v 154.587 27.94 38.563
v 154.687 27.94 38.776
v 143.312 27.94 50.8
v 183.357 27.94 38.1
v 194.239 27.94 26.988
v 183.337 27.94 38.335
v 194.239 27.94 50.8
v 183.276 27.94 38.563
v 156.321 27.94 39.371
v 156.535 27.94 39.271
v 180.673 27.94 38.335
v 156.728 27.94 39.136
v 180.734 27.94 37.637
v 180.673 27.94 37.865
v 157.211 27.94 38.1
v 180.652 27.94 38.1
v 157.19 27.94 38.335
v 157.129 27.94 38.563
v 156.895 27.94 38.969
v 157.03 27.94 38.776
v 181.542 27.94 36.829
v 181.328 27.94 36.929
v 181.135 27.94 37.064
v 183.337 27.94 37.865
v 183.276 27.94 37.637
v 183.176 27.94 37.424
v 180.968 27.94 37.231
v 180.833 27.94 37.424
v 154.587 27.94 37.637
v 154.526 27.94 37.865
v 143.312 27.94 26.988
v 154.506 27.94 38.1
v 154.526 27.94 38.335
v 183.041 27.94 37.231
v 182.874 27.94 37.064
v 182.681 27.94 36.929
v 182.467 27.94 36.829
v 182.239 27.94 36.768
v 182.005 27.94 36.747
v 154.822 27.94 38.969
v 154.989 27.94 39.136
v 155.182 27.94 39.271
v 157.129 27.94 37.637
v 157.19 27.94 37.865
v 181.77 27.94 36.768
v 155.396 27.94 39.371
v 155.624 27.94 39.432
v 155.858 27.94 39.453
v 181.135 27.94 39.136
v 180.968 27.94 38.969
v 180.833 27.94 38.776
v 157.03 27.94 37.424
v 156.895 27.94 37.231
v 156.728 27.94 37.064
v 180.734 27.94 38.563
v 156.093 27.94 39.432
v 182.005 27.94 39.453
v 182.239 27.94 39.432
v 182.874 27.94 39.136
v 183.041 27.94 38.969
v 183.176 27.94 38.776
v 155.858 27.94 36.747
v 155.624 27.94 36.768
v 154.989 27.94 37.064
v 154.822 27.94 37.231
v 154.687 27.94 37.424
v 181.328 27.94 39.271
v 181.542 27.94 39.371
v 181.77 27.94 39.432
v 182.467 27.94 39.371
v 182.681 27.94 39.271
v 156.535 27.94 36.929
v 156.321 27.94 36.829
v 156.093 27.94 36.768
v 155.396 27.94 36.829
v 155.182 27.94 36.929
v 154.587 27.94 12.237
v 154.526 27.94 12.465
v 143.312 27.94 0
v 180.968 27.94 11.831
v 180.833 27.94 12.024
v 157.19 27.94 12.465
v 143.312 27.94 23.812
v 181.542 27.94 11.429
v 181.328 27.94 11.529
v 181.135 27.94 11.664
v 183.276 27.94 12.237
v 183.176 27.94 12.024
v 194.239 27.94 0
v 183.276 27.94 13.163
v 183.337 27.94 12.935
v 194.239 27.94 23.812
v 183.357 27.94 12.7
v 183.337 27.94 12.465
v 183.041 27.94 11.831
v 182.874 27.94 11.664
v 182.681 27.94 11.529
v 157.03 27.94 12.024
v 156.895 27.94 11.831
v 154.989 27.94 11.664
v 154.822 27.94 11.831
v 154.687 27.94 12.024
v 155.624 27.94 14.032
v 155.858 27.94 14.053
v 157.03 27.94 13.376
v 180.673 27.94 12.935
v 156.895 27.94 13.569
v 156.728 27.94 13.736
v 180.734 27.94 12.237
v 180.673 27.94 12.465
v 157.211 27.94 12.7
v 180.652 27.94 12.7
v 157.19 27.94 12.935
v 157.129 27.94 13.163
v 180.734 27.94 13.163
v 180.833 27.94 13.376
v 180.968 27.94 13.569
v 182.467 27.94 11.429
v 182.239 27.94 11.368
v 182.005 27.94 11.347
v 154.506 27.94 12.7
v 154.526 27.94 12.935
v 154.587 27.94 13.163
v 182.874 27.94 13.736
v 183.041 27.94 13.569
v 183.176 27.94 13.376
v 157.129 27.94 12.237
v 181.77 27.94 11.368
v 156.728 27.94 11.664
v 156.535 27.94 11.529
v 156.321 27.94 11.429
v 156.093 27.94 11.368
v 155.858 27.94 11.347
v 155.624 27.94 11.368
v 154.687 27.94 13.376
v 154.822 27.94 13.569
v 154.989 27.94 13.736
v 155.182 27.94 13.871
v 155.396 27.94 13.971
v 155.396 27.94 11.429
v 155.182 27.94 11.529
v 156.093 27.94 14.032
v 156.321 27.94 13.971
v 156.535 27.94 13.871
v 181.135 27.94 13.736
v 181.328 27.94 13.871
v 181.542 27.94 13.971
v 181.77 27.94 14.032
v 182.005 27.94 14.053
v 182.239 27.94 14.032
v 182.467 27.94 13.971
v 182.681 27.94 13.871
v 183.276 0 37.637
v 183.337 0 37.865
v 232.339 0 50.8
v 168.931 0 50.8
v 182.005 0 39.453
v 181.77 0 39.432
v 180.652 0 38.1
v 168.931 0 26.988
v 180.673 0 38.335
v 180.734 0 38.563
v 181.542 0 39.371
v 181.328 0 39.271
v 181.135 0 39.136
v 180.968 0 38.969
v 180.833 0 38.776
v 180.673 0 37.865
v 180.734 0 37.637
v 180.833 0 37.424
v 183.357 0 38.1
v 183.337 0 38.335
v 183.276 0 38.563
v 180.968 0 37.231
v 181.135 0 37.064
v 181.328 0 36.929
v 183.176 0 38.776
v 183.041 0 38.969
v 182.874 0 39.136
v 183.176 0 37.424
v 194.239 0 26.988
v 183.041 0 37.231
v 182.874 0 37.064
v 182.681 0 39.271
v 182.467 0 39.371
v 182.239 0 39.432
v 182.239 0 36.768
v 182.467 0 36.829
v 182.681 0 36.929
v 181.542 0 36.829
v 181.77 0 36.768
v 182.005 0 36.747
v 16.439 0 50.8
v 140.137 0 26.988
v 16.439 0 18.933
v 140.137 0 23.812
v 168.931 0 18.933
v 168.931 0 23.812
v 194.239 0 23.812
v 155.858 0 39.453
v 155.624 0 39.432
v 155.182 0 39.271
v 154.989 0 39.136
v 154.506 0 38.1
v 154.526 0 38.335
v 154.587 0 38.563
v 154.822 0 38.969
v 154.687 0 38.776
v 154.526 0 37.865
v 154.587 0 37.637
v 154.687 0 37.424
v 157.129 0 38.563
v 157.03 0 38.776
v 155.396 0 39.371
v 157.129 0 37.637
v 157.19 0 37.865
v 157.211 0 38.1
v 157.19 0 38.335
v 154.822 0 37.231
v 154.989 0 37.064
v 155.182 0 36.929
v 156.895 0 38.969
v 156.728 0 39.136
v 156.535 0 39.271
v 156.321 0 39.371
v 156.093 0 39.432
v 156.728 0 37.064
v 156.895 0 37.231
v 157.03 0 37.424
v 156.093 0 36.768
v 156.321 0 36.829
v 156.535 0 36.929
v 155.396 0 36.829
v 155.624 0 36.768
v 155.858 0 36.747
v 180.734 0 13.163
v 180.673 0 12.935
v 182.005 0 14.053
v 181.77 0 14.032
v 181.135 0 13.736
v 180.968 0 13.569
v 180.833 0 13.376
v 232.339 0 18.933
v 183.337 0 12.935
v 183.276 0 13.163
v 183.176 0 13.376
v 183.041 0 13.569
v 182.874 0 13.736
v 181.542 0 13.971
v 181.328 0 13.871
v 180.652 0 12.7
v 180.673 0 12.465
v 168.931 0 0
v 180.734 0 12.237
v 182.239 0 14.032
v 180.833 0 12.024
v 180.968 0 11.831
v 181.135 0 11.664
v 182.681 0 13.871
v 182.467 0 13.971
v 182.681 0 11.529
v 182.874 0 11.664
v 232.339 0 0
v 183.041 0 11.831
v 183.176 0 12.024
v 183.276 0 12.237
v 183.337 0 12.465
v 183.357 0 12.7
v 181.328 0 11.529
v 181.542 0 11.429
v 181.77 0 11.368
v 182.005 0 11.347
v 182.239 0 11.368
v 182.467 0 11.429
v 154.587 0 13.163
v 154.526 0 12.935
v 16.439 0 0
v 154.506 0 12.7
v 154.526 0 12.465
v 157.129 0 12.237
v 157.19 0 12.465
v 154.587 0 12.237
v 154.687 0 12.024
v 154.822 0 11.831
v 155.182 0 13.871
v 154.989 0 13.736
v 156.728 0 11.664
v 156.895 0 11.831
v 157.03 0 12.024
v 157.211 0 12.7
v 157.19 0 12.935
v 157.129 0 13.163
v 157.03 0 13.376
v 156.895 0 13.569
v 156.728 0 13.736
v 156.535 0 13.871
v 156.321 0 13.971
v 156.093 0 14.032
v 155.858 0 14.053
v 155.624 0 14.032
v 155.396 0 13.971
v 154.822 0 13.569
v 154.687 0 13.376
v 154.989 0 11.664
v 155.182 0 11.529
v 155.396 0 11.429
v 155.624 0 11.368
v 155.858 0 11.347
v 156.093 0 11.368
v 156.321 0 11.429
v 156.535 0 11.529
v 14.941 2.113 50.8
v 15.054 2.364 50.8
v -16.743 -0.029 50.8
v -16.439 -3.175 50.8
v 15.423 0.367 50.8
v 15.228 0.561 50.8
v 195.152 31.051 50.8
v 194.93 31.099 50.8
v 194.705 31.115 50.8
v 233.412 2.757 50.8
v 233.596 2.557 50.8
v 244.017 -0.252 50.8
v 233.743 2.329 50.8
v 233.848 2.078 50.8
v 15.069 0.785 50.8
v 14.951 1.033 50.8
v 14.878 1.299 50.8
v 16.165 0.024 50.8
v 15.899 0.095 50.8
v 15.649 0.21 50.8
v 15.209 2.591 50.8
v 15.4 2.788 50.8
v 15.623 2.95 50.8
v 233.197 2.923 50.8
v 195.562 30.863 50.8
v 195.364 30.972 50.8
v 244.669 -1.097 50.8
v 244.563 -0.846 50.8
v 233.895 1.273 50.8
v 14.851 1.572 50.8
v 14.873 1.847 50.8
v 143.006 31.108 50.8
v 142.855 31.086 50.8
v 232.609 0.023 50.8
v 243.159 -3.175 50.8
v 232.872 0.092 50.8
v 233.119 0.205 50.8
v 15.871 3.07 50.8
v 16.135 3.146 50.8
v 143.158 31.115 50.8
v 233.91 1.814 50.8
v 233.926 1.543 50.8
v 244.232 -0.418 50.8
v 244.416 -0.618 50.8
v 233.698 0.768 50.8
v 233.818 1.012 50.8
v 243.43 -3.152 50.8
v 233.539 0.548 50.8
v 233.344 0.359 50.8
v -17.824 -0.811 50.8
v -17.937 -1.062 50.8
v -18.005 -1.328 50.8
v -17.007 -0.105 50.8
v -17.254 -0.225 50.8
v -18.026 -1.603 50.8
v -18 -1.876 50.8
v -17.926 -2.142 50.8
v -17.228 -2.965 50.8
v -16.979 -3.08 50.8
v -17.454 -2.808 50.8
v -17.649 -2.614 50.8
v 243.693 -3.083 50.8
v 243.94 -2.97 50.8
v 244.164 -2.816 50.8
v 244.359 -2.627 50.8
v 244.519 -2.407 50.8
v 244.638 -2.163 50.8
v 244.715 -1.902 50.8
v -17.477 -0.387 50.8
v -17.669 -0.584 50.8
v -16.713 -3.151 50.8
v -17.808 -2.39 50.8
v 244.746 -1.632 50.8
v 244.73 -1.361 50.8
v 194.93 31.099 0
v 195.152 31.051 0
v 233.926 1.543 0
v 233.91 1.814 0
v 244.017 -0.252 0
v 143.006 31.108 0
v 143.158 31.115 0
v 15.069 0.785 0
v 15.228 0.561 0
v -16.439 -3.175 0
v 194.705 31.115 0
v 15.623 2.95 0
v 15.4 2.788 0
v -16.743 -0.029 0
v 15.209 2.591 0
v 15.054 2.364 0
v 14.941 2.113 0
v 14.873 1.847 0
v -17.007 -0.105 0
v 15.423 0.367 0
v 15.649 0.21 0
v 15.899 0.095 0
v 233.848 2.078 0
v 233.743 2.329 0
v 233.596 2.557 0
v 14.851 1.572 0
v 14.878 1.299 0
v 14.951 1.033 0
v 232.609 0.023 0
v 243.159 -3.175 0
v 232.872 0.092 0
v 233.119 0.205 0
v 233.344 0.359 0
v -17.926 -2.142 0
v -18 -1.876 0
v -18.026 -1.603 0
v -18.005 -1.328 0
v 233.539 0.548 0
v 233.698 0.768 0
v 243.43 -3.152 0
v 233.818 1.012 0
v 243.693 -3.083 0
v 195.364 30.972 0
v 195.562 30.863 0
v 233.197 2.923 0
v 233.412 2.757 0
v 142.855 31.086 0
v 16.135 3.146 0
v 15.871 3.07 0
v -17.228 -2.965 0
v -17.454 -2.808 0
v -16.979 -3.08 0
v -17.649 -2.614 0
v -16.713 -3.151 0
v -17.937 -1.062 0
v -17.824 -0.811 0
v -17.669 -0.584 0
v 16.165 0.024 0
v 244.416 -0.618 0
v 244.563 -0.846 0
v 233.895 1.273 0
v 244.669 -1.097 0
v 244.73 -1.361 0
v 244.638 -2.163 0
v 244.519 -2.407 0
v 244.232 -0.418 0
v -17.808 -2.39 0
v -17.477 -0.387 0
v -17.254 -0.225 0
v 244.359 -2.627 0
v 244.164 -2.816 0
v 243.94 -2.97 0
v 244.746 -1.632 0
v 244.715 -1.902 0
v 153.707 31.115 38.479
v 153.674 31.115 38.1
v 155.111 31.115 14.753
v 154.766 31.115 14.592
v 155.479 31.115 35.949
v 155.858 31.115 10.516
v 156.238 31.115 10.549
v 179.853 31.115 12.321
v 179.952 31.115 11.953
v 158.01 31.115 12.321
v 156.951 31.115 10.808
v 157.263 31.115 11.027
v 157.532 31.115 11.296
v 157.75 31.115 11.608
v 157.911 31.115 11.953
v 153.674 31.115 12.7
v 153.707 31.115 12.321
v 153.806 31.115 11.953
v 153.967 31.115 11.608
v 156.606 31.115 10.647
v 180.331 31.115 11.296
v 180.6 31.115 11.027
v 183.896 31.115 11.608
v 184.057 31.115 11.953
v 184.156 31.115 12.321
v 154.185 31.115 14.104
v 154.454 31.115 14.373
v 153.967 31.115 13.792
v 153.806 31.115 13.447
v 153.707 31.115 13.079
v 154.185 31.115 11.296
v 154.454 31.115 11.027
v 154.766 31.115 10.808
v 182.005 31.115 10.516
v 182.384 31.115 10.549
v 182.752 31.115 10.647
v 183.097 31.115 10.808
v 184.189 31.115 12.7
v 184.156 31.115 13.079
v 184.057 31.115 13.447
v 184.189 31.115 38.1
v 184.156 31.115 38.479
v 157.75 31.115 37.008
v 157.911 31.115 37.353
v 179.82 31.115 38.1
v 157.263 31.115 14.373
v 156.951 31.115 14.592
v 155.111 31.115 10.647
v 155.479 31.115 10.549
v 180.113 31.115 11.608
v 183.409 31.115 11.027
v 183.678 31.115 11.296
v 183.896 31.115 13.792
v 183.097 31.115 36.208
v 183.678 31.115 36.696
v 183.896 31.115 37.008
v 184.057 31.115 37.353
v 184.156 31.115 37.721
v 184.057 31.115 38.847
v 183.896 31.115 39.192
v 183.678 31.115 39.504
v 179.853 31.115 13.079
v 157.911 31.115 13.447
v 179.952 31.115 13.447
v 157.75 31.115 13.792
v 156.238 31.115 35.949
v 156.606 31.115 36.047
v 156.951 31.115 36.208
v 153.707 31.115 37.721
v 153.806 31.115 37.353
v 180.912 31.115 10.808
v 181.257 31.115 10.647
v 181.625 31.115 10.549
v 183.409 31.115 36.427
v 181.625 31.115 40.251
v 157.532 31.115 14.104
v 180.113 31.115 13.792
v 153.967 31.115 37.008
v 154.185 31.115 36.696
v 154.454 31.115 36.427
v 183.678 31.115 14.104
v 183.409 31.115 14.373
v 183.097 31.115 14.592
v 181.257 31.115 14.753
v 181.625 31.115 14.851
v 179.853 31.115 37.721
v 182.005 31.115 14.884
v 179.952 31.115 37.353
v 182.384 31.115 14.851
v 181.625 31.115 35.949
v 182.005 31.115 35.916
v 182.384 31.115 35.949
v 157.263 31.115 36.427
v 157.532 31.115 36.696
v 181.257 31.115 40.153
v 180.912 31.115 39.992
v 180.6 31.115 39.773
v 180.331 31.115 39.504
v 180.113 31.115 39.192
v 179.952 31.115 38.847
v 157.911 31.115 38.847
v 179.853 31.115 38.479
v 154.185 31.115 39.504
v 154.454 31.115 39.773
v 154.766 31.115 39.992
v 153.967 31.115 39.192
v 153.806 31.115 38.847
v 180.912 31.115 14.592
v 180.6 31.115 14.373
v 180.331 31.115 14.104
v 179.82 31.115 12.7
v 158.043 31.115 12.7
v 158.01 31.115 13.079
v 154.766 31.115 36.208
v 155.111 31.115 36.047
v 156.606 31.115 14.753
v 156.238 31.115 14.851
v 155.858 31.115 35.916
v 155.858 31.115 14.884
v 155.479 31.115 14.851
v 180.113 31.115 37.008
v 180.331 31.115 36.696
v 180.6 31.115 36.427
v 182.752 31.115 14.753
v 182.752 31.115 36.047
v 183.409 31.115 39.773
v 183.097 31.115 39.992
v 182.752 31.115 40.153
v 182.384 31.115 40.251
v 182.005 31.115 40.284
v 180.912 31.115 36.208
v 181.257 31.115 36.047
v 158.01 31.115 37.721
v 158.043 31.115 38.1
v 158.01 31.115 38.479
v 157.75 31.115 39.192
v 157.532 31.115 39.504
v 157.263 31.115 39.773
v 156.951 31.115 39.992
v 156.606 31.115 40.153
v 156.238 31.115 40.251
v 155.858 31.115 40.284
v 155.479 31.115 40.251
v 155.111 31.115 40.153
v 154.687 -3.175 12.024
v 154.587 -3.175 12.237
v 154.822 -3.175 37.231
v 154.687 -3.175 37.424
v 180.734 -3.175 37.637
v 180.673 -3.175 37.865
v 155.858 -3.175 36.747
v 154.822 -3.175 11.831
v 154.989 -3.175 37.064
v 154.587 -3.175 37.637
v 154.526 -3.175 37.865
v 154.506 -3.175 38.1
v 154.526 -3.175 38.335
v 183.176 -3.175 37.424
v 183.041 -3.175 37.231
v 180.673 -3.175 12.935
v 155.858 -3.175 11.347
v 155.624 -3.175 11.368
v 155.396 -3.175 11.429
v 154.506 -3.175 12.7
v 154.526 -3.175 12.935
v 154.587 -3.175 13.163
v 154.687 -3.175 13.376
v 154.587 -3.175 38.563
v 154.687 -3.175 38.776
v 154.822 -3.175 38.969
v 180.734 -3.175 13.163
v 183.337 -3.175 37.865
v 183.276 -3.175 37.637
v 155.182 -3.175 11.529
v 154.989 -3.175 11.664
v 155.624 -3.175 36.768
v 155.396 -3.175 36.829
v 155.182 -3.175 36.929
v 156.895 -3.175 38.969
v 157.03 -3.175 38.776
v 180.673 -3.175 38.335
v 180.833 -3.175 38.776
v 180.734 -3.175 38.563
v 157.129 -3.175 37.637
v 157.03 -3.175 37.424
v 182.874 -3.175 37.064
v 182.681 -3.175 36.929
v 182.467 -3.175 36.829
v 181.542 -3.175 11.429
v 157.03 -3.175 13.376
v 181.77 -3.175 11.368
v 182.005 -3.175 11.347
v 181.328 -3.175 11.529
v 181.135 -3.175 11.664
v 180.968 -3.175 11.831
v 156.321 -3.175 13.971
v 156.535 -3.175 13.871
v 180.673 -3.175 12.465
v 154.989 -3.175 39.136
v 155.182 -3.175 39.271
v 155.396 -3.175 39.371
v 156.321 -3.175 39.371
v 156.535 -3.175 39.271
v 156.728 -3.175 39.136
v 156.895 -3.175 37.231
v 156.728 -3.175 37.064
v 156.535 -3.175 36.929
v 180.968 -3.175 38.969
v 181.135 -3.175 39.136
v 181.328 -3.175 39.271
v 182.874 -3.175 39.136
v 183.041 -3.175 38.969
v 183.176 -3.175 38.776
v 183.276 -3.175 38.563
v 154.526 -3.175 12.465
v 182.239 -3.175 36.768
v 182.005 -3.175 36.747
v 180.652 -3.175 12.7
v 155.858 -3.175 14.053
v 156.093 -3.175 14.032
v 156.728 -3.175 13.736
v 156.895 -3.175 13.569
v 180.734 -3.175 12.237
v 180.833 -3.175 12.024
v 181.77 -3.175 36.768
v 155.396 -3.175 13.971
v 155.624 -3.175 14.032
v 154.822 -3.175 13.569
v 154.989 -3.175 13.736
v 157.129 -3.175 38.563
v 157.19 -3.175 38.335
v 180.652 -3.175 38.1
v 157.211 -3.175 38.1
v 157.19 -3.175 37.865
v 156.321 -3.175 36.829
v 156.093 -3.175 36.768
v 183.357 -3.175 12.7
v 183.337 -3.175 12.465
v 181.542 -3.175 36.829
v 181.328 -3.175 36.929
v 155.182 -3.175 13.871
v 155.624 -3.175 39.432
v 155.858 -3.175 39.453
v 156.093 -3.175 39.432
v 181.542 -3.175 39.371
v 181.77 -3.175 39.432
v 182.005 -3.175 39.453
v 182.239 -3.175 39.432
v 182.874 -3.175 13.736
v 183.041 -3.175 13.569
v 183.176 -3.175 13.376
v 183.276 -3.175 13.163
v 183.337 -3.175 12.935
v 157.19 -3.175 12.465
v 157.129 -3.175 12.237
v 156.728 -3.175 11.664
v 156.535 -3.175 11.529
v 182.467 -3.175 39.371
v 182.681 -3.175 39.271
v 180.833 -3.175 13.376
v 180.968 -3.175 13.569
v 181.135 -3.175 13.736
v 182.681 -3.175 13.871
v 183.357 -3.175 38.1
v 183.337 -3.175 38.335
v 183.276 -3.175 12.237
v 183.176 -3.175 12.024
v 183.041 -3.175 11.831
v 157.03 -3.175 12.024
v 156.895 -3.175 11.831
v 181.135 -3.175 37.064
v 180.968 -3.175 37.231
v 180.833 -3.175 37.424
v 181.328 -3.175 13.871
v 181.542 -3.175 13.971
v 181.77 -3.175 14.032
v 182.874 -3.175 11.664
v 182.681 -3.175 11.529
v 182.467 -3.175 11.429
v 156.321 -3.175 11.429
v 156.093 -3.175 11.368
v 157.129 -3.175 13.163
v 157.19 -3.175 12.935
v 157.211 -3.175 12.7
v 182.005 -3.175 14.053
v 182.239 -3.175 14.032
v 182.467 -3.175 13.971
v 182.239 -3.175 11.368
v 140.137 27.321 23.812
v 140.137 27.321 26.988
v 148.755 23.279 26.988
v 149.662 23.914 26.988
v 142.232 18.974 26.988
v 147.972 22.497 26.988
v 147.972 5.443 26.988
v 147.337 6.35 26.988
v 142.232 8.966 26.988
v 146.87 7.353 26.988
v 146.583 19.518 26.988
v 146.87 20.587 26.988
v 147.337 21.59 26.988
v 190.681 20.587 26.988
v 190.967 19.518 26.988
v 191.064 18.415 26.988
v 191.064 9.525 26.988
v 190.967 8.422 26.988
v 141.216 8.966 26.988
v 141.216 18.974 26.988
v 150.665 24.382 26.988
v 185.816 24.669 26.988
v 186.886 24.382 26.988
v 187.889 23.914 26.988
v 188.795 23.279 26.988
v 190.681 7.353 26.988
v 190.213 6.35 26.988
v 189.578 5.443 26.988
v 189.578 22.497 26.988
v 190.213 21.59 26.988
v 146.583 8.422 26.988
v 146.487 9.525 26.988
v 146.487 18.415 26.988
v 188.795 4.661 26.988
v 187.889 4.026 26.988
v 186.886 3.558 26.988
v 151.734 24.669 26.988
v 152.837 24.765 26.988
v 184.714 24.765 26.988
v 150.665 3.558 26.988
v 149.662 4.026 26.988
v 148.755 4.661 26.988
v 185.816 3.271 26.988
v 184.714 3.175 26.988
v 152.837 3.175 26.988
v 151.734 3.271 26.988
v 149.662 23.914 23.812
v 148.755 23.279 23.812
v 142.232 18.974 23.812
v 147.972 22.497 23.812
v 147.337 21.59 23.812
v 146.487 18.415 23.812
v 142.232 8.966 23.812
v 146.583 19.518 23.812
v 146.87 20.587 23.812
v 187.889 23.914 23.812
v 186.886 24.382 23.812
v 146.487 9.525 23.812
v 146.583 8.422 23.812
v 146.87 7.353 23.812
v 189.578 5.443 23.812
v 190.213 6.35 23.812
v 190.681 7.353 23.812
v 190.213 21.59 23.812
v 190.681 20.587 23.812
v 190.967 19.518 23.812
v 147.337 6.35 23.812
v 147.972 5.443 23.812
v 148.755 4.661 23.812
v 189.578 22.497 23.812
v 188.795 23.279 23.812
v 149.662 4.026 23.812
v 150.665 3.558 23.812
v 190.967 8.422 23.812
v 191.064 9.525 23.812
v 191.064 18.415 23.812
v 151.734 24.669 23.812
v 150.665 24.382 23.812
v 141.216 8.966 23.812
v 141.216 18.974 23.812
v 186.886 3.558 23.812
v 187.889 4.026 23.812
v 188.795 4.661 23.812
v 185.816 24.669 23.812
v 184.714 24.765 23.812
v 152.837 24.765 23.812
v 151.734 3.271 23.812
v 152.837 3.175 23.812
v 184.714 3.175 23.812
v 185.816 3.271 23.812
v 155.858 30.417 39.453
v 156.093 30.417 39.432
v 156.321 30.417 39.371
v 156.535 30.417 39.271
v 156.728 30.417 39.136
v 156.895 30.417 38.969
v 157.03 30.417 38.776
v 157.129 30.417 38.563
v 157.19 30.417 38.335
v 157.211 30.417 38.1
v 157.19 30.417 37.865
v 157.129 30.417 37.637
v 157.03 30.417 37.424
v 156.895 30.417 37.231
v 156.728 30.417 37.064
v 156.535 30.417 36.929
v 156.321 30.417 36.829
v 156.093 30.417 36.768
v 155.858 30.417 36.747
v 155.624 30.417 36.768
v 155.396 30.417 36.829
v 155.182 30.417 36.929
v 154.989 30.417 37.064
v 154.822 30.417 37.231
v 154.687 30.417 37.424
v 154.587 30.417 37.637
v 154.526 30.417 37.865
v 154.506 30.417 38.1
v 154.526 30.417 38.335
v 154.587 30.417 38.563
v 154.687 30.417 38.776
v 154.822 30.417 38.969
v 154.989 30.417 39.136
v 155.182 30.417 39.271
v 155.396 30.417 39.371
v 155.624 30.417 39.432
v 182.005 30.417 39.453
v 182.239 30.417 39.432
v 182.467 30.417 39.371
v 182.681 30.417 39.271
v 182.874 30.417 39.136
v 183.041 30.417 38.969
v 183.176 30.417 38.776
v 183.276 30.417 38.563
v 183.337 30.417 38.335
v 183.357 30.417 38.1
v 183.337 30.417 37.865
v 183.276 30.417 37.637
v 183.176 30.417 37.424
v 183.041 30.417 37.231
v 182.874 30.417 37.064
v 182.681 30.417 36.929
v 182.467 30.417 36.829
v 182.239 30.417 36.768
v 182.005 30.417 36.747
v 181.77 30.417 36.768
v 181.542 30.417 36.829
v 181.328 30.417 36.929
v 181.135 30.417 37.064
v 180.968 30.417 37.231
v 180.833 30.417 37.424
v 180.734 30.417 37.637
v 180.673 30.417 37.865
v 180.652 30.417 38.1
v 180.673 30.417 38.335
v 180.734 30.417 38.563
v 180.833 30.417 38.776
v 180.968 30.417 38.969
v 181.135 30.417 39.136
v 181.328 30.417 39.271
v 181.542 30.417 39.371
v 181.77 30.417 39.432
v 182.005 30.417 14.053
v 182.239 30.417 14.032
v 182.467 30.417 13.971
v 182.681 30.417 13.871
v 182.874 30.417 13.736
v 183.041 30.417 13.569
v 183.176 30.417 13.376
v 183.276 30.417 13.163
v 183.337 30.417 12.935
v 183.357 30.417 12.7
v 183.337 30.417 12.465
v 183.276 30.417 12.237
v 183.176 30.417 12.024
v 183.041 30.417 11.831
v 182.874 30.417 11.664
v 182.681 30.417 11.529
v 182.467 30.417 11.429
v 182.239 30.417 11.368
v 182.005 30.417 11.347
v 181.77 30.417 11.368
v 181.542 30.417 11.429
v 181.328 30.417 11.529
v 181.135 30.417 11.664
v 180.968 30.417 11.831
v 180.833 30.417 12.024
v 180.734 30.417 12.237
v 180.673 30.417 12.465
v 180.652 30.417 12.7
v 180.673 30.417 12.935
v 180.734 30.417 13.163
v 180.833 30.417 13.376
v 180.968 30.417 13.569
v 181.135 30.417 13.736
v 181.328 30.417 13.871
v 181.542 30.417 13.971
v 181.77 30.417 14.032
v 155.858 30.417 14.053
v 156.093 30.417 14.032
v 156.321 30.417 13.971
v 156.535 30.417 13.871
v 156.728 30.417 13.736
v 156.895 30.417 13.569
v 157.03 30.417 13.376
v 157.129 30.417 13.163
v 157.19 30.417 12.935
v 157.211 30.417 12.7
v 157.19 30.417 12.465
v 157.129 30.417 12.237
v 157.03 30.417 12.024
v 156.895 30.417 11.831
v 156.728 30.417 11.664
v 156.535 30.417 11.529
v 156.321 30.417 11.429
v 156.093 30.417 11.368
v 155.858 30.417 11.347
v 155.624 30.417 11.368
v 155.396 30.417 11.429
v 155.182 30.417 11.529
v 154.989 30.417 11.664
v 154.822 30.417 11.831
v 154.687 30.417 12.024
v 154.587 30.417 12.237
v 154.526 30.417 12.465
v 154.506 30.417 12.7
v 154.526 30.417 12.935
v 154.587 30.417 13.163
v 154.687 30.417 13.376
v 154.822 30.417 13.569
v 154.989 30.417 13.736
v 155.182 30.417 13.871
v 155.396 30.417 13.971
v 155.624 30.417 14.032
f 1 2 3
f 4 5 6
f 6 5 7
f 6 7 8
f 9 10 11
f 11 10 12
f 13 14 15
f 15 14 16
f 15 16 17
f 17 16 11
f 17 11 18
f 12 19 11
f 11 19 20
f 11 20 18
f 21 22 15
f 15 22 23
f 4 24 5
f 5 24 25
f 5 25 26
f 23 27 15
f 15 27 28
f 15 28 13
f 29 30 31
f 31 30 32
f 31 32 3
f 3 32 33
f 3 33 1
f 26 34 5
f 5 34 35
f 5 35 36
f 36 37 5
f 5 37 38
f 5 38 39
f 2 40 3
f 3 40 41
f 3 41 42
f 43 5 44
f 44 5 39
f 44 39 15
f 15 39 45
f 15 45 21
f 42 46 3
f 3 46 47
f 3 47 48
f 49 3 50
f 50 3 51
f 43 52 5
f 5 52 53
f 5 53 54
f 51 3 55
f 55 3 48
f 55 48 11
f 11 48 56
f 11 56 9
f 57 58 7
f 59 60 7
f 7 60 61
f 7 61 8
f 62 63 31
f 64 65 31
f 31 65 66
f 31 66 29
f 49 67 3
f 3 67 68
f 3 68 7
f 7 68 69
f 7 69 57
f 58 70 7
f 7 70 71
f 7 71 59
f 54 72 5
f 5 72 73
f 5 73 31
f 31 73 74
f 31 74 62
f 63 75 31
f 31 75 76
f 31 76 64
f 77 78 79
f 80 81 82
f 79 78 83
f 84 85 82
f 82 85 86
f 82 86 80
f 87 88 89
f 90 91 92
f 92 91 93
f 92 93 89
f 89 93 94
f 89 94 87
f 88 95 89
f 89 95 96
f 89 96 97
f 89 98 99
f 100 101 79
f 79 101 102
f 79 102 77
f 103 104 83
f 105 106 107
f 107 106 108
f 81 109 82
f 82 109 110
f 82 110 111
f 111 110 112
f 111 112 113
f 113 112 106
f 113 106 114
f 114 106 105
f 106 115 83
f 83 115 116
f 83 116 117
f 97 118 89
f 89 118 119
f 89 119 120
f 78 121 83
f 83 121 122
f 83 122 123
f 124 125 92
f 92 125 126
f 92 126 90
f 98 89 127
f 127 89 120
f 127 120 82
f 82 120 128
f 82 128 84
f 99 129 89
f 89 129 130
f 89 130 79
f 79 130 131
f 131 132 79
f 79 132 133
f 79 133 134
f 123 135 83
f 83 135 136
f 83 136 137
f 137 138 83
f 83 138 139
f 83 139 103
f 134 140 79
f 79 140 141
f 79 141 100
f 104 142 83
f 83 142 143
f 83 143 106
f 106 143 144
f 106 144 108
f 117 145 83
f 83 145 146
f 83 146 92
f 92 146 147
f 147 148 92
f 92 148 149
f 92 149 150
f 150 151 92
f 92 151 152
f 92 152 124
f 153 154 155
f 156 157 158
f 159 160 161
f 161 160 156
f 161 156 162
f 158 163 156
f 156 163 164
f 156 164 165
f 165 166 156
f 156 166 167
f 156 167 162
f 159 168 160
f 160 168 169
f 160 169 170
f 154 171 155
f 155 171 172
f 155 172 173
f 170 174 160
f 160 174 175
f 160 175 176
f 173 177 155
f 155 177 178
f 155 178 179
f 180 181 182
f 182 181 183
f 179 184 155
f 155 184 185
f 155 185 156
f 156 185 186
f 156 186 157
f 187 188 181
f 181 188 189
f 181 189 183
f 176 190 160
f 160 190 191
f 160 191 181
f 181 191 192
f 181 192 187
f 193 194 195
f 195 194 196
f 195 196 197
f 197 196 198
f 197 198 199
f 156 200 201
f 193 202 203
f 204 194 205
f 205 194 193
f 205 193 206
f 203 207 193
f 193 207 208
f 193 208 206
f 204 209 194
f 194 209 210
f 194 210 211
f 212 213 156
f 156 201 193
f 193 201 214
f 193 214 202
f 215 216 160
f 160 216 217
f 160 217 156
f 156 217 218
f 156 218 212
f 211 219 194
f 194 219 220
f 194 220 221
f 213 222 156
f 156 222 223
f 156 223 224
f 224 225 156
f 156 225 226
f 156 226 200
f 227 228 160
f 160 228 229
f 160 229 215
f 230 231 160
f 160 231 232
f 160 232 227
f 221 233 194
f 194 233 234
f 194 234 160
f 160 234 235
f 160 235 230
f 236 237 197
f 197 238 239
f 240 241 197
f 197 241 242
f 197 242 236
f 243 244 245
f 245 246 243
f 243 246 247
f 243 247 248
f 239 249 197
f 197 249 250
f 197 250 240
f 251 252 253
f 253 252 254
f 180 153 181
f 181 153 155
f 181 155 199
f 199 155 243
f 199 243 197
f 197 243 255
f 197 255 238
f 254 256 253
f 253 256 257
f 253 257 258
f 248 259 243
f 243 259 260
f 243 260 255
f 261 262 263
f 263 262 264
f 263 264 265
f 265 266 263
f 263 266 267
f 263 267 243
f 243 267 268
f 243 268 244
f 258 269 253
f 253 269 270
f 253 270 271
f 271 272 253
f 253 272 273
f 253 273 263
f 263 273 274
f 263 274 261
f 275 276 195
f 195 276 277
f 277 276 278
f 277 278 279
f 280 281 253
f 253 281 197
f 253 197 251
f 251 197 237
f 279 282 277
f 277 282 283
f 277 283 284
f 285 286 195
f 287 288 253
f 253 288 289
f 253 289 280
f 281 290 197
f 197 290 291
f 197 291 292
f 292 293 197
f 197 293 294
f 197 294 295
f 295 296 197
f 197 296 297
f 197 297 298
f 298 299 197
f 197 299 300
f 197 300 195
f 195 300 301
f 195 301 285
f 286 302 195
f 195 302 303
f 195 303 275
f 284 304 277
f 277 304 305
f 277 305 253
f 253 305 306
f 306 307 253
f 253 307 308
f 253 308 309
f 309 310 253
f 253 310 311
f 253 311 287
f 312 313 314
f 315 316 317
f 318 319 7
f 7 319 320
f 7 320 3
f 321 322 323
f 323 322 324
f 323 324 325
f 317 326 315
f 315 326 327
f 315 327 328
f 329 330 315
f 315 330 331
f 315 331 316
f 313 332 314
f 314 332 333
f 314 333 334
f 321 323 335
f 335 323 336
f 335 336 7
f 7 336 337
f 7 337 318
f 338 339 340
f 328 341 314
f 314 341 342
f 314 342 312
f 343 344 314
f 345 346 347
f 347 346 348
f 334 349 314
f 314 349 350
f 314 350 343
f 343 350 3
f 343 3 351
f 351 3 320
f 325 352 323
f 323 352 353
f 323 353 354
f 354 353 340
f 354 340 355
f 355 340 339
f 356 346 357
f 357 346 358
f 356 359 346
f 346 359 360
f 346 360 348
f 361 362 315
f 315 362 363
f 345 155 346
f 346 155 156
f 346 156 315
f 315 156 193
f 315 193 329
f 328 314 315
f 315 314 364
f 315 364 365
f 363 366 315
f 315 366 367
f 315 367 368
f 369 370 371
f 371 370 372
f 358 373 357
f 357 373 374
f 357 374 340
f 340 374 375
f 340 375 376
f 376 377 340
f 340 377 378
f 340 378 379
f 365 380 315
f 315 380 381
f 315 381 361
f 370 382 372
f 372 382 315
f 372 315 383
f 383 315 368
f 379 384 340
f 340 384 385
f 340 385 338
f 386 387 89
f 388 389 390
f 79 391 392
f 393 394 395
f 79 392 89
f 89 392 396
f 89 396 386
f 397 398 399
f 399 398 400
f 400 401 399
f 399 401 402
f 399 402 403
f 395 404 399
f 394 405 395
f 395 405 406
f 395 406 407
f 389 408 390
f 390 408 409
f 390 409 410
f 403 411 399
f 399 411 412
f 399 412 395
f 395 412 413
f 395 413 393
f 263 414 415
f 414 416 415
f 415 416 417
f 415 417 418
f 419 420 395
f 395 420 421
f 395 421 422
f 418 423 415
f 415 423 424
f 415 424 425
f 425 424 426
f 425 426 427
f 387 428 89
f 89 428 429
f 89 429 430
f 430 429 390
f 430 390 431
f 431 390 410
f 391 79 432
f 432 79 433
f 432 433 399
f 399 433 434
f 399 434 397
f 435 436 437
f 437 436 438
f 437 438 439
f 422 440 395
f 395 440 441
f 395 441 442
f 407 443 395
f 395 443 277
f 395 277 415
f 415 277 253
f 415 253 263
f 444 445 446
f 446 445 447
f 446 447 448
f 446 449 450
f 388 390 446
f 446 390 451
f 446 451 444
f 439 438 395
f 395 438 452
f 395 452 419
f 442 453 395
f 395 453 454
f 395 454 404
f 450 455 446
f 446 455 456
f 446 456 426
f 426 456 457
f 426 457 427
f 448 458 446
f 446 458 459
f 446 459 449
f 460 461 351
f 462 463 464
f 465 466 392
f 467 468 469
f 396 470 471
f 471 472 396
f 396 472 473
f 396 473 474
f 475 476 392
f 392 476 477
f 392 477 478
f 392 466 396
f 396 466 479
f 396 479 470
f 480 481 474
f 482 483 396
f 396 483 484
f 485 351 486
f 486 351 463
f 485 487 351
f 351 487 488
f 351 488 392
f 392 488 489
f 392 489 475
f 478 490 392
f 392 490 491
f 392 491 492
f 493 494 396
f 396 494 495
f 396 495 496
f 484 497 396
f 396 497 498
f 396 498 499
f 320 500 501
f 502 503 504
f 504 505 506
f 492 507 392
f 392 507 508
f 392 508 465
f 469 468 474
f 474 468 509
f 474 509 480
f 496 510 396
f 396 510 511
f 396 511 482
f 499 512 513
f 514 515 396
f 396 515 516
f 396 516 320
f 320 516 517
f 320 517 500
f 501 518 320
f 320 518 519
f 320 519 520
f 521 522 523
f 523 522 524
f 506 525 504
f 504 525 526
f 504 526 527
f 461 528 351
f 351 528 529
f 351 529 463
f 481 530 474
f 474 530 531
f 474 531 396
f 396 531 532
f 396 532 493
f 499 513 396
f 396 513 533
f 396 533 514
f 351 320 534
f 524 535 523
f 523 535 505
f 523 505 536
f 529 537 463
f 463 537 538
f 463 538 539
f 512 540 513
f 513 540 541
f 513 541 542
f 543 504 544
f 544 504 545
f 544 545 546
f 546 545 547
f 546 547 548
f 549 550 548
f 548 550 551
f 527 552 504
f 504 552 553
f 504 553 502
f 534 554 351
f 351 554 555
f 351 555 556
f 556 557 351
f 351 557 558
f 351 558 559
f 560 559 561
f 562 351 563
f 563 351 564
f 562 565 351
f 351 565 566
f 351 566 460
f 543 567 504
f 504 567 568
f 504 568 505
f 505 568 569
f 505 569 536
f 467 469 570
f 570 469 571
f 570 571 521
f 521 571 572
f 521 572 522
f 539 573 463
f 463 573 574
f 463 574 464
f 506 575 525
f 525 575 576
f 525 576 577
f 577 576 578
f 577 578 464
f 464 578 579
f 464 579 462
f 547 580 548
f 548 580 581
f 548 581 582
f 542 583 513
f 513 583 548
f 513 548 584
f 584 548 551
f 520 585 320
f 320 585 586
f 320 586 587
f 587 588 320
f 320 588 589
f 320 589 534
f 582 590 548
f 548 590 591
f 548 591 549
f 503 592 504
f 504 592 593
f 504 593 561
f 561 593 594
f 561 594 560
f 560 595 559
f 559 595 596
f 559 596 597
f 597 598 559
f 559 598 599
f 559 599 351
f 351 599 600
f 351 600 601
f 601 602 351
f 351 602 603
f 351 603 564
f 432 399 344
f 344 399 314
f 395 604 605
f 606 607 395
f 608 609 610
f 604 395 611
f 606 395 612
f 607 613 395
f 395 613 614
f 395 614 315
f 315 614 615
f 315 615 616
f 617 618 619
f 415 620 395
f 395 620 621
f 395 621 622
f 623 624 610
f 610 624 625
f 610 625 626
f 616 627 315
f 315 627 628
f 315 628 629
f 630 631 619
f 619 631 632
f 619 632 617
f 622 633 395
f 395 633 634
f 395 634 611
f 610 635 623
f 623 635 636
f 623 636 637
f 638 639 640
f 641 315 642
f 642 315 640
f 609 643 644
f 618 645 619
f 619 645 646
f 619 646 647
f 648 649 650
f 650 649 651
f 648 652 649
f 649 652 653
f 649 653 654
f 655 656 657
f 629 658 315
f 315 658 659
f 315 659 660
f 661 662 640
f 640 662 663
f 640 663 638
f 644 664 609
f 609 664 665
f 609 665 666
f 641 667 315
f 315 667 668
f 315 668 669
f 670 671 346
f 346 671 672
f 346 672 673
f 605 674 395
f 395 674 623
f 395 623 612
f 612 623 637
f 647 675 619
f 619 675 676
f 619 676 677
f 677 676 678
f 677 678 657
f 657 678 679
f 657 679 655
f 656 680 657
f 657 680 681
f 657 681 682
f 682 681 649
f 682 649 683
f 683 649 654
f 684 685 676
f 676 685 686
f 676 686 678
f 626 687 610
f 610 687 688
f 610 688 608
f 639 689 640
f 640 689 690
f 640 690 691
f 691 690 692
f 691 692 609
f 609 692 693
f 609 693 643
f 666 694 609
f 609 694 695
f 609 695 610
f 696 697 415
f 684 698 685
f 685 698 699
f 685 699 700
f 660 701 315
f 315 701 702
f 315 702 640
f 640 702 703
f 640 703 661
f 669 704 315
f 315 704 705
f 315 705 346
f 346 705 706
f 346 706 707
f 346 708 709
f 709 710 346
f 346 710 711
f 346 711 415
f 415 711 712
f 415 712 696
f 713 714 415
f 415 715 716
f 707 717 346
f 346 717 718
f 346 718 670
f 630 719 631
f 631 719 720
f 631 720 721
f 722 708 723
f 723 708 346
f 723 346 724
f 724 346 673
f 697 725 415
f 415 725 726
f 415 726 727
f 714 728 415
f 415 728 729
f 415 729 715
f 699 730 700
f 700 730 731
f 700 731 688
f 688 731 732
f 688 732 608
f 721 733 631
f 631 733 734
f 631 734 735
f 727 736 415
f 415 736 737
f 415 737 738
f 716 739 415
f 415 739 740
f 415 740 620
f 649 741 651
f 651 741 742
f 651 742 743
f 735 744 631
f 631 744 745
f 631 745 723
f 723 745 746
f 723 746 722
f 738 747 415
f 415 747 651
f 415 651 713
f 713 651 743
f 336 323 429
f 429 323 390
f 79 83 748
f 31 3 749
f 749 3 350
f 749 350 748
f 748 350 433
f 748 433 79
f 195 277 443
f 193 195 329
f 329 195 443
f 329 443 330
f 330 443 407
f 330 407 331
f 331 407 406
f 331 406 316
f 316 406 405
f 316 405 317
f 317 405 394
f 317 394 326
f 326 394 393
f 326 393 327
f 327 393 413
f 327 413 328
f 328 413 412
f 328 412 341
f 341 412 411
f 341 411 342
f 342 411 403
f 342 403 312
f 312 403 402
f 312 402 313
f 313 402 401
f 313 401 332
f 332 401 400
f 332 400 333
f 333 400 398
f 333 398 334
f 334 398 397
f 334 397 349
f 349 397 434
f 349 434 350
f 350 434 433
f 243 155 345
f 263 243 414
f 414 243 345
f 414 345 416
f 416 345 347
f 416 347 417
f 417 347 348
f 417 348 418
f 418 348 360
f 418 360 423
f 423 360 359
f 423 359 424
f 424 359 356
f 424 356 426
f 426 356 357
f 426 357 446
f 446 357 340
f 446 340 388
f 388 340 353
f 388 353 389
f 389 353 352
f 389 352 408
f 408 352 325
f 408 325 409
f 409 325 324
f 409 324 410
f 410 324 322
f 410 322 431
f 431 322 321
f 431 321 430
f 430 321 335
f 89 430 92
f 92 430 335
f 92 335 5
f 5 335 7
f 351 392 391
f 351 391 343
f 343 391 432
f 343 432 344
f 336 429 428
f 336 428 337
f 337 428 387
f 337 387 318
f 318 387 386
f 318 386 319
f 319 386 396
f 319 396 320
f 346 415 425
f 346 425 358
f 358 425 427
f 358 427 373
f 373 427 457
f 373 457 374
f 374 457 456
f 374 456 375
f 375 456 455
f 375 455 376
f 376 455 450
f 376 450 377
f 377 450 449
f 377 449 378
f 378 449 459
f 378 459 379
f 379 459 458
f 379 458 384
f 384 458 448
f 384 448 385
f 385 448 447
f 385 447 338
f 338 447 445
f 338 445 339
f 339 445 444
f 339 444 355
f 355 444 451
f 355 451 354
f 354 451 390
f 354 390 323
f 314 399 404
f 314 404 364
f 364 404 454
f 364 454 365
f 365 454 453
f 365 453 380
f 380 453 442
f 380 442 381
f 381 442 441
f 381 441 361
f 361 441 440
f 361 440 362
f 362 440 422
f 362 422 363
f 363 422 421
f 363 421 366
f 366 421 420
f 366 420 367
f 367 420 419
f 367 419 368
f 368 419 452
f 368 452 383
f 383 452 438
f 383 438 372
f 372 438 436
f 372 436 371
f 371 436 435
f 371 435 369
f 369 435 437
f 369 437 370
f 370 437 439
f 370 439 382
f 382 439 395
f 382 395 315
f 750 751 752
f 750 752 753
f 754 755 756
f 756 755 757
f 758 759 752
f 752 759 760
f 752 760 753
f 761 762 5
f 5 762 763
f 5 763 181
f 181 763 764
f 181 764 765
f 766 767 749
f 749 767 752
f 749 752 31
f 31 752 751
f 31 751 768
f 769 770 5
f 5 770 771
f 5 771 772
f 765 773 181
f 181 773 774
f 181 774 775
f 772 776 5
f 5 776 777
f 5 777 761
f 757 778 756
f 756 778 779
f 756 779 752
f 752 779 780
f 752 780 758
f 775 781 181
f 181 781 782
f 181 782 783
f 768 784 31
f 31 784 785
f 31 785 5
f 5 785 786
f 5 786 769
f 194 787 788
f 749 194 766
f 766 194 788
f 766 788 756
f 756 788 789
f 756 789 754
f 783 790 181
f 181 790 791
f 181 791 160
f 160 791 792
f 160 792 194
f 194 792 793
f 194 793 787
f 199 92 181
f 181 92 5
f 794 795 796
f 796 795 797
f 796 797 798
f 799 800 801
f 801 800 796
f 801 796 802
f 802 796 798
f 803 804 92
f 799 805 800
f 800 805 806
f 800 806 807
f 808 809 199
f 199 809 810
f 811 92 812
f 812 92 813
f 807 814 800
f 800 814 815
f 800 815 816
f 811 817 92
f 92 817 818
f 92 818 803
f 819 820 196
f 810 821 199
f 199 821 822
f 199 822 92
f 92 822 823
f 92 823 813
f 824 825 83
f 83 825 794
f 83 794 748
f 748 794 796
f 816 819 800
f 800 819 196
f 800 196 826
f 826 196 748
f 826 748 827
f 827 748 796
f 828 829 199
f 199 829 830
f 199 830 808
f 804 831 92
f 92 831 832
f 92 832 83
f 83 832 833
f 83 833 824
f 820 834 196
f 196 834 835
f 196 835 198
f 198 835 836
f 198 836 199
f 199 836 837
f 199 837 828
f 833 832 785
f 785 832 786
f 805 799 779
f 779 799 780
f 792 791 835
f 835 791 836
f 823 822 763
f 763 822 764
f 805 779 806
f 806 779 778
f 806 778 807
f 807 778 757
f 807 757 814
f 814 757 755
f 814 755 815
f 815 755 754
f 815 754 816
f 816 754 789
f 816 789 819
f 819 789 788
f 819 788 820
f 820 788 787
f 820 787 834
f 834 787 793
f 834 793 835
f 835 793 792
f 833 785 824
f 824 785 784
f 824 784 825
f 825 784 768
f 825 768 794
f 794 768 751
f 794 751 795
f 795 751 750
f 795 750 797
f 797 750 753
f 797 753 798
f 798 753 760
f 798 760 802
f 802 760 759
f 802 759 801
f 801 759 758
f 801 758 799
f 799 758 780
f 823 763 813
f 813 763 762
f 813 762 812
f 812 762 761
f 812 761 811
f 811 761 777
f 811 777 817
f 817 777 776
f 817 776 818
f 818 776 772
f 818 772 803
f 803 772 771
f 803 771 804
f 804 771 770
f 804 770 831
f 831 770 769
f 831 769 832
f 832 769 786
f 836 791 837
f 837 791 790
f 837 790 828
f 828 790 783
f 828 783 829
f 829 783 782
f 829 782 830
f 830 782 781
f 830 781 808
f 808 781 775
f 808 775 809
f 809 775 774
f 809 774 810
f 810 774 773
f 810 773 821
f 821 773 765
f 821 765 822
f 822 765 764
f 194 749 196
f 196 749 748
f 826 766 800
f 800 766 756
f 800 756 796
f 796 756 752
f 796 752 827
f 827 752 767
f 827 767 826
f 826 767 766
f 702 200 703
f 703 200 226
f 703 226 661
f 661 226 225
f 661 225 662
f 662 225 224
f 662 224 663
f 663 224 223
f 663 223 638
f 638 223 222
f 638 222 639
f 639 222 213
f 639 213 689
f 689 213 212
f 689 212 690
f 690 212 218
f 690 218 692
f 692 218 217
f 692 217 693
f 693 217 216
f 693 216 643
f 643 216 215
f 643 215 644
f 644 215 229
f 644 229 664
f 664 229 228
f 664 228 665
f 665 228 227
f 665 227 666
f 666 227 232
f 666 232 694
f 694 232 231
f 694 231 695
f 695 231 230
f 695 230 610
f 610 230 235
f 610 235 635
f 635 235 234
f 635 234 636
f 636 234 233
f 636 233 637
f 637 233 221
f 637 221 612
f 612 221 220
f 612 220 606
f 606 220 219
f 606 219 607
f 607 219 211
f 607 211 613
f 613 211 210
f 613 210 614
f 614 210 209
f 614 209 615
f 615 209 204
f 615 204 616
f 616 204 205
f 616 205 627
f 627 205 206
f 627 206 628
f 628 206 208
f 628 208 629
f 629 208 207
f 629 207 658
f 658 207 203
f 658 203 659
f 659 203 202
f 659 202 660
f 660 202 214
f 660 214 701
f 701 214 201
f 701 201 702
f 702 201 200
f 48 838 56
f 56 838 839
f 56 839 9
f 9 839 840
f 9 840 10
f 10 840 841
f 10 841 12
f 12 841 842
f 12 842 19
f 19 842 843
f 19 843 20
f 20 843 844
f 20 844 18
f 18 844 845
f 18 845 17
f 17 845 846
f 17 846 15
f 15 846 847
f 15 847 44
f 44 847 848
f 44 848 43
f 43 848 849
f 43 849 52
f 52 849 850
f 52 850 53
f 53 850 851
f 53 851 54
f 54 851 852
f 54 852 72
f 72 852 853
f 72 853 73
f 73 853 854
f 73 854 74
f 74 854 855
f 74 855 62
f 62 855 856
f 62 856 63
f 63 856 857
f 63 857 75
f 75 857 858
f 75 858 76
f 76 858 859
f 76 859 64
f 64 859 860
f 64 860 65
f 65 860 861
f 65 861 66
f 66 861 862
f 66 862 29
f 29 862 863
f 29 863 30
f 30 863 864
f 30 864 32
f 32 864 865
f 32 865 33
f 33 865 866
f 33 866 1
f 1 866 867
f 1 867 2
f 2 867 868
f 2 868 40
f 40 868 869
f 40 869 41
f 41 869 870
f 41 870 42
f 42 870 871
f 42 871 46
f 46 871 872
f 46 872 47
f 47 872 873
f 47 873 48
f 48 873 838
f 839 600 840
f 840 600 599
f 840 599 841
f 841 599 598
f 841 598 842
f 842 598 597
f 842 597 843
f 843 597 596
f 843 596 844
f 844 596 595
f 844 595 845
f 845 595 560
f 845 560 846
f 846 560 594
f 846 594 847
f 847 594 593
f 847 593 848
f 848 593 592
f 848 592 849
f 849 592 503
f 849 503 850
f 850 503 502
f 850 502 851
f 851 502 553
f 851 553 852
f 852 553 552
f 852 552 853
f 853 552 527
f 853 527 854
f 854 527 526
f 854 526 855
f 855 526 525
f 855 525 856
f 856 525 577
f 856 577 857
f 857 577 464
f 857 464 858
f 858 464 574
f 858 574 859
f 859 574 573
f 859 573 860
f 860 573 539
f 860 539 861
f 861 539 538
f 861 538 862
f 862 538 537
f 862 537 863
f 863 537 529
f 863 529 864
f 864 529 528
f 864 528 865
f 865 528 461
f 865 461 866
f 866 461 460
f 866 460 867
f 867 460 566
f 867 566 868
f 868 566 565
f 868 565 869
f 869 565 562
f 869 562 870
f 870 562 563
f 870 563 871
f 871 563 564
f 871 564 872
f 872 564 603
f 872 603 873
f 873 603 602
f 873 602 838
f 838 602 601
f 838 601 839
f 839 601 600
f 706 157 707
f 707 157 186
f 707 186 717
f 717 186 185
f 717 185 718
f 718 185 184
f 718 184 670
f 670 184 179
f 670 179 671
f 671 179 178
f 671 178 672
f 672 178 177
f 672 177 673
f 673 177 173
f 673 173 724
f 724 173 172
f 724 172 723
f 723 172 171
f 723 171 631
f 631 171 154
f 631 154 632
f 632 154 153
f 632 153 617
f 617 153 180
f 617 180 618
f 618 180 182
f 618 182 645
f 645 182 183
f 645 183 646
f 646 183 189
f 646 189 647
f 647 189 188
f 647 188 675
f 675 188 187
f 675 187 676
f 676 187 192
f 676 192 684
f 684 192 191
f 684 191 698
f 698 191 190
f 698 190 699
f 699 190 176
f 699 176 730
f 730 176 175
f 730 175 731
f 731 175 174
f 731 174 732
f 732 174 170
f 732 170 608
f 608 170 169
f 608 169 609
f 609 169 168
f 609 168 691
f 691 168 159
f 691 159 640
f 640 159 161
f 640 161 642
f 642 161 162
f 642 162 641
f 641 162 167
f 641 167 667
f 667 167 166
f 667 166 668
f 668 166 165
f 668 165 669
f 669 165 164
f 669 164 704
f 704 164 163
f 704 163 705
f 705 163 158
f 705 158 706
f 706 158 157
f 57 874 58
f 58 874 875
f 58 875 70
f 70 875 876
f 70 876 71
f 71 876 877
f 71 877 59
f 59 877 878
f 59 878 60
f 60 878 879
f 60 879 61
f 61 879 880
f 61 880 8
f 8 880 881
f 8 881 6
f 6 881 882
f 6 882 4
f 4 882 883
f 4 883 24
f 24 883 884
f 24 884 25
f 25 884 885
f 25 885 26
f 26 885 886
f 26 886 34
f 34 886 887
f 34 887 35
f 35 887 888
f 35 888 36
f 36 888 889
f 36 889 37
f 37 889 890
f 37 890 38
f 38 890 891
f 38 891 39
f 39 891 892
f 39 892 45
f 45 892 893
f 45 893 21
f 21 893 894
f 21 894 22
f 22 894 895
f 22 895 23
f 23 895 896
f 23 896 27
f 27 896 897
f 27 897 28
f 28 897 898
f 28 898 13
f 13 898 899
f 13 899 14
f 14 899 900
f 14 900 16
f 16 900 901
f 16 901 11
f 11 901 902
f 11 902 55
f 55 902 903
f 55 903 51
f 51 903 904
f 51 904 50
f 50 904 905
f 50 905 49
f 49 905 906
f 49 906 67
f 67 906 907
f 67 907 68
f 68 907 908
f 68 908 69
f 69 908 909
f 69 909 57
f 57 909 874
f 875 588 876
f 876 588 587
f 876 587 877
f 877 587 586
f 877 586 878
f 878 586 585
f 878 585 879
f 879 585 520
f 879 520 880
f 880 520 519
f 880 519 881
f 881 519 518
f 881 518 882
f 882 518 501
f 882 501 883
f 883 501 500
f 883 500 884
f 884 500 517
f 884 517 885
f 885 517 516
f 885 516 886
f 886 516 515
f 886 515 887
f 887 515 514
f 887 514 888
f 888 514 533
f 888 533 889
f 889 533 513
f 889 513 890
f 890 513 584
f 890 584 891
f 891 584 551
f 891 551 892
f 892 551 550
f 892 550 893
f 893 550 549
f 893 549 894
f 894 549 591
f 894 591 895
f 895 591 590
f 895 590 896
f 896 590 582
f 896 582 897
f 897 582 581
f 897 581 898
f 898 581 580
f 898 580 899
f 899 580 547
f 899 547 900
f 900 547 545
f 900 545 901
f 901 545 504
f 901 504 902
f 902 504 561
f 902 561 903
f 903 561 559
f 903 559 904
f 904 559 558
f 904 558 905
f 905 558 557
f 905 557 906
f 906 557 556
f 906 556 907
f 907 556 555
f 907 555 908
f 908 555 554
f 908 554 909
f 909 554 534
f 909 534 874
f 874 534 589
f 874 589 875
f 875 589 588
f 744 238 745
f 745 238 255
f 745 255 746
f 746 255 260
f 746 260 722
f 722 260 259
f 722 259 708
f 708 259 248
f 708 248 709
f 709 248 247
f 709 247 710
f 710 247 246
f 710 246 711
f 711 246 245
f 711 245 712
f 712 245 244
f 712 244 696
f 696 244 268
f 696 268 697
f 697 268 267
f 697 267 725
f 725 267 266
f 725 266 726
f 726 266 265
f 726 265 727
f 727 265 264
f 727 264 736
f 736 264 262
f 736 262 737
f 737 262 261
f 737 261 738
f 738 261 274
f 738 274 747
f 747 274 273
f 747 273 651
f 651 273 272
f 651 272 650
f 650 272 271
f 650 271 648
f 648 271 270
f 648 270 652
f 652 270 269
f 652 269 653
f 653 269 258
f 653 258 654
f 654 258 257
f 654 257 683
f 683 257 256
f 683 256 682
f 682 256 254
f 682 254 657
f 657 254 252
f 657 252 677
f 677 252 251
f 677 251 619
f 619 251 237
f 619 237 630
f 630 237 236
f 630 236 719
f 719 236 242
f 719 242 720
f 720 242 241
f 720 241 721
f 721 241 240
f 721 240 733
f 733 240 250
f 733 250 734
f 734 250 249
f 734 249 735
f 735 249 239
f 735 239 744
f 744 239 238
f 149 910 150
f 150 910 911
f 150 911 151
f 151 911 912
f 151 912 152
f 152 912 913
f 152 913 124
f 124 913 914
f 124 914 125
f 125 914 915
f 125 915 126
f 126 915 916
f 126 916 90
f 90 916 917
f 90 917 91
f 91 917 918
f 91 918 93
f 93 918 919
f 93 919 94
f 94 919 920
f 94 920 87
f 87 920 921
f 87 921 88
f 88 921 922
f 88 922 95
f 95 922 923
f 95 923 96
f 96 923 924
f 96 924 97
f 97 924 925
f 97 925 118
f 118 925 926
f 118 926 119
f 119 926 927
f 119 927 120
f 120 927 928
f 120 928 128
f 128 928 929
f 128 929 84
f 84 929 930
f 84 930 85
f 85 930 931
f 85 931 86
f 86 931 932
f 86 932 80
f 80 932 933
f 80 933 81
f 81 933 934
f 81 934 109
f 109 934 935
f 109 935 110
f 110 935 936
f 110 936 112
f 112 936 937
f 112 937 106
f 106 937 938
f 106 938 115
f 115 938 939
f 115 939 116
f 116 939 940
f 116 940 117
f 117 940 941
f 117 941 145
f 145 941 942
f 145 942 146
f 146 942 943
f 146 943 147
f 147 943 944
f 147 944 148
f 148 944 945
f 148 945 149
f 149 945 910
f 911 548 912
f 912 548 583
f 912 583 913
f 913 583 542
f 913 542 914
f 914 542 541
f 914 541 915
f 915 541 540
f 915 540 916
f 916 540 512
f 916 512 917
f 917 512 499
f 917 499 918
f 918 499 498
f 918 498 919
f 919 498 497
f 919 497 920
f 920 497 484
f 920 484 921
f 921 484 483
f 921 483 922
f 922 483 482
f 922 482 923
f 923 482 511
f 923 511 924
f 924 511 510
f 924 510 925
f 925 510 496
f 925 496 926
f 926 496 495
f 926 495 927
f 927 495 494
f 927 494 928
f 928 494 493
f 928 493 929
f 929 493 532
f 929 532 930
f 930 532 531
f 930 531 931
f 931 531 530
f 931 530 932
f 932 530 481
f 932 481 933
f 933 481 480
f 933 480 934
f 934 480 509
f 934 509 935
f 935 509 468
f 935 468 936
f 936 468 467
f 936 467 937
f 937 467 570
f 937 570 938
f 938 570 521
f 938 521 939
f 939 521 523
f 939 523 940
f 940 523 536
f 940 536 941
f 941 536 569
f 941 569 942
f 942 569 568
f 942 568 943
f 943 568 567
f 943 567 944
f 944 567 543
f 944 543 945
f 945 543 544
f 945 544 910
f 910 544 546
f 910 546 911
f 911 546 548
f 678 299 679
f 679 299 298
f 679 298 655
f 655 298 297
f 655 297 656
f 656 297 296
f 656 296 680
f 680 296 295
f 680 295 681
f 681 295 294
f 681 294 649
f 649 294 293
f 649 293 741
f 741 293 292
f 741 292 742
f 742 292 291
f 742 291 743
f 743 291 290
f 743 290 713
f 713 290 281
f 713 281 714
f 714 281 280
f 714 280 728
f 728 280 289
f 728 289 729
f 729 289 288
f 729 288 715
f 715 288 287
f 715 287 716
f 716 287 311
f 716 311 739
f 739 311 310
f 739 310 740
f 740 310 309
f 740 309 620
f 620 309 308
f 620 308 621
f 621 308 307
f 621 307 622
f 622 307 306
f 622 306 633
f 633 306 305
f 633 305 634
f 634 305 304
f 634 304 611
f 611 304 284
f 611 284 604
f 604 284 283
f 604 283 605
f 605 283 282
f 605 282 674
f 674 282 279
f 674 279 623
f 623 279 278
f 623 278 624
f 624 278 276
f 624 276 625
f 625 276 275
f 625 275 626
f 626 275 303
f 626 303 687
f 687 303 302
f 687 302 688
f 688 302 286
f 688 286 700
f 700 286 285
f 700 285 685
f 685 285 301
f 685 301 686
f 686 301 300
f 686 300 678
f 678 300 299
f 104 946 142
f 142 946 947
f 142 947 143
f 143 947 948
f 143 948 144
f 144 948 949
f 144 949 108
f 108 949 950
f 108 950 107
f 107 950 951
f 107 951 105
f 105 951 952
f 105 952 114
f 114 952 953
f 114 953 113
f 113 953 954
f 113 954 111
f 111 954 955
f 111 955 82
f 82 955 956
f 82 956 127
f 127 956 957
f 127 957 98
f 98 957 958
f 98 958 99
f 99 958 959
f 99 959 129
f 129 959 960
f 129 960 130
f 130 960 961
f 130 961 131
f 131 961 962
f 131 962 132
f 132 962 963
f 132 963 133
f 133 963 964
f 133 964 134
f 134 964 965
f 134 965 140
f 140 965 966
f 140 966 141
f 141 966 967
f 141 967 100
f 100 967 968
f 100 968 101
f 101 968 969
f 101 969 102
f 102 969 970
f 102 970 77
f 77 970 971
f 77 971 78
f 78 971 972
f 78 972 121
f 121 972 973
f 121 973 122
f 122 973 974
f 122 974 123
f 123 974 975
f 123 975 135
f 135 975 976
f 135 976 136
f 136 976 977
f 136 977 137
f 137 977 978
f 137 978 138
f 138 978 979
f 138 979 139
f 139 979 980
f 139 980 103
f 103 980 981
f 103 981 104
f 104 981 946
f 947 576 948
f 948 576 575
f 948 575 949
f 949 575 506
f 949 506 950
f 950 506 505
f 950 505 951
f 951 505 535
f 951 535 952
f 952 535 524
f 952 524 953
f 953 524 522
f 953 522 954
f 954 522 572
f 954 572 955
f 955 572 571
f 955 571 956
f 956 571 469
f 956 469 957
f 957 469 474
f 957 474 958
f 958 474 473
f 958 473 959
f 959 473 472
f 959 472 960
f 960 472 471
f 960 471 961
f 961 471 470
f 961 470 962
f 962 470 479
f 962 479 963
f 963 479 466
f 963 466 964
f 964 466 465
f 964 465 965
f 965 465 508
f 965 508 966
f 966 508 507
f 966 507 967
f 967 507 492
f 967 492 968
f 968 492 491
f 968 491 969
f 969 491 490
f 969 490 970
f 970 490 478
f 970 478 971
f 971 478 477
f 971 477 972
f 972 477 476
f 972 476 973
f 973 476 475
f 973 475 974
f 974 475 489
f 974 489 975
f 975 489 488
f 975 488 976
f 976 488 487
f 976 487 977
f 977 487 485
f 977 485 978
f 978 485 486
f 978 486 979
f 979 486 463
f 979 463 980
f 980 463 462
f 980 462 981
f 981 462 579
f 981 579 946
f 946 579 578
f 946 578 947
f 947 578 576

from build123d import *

# Parameters (mm, degrees)
BOSS_EXTRUDE1_DEPTH                               = 50.8
FILLET1_R                                         = 1.5875
SKETCH3_W                                         = 50.927
SKETCH3_H                                         = 3.175
BOSS_EXTRUDE2_DEPTH                               = 27.94
SKETCH4_W                                         = 44.577
SKETCH4_H                                         = 21.59
CUT_EXTRUDE1_DEPTH                                = 3.175
FILLET2_R                                         = 6.35
SKETCH6_W                                         = 1.016
SKETCH6_H                                         = 10.0076
BOSS_EXTRUDE3_DEPTH                               = 3.175
CSK_FOR_2_FLAT_HEAD_MACHINE_SCREW_100_D           = 2.7051
CSK_FOR_2_FLAT_HEAD_MACHINE_SCREW_100_CSINK_D     = 4.3688
CSK_FOR_2_FLAT_HEAD_MACHINE_SCREW_100_CSINK_ANGLE = 100


with BuildPart() as part:
    # Sketch1 → Boss-Extrude1 (new body)
    with BuildSketch(Plane.XY):
        Polygon((143.005117829, 31.115), (-32.877459737, -3.175), (248.569196095, -3.175), (195.170369003, 31.115), align=None)
        with BuildLine():
            Line((16.438729869, 0), (232.338729869, 0))
            ThreePointArc((232.338729869, 0), (233.862005994, 1.140525622), (233.196513049, 2.923300983))
            Line((233.196513049, 2.923300983), (194.238729869, 27.94))
            Line((194.238729869, 27.94), (143.311729869, 27.94))
            Line((143.311729869, 27.94), (16.134950843, 3.14566384))
            ThreePointArc((16.134950843, 3.14566384), (14.858580928, 1.434903877), (16.438729869, 0))
        make_face(mode=Mode.SUBTRACT)
    extrude(amount=BOSS_EXTRUDE1_DEPTH)

    # Fillet1
    fillet1_edges = [part.edges().sort_by_distance(p)[0] for p in [
        (195.170369003, 31.115, 25.4),
        (248.569196095, -3.175, 25.4),
        (-32.877459737, -3.175, 25.4),
        (143.005117829, 31.115, 25.4),
    ]]
    fillet(fillet1_edges, radius=FILLET1_R)

    # Sketch3 → Boss-Extrude2 (add)
    with BuildSketch(Plane.XZ.offset(-27.94)):
        with Locations((168.775229869, 25.4)):
            Rectangle(SKETCH3_W, SKETCH3_H)
    extrude(amount=BOSS_EXTRUDE2_DEPTH)

    # Sketch4 → Cut-Extrude1 (cut)
    with BuildSketch(Plane(origin=(0, 0, 23.8125), x_dir=(-1, 0, 0), z_dir=(0, 0, -1))):
        with Locations((-168.775229869, 13.97)):
            Rectangle(SKETCH4_W, SKETCH4_H)
    extrude(amount=-CUT_EXTRUDE1_DEPTH, mode=Mode.SUBTRACT)

    # Fillet2
    fillet2_edges = [part.edges().sort_by_distance(p)[0] for p in [
        (191.063729869, 24.765, 25.4),
        (146.486729869, 24.765, 25.4),
        (146.486729869, 3.175, 25.4),
        (191.063729869, 3.175, 25.4),
    ]]
    fillet(fillet2_edges, radius=FILLET2_R)

    # Sketch6 → Boss-Extrude3 (add)
    with BuildSketch(Plane.XY.offset(26.9875)):
        Polygon((143.311729869, 0), (140.136729869, 0), (140.136729869, 27.321003215), (143.311729869, 27.94), align=None)
        with Locations((141.724229869, 13.97)):
            Rectangle(SKETCH6_W, SKETCH6_H, mode=Mode.SUBTRACT)
    extrude(amount=-BOSS_EXTRUDE3_DEPTH)

    # CSK for #2 Flat Head Machine Screw (100)1 (through all)
    with Locations(Plane(origin=(0, 31.115, 0), x_dir=(1, 0, 0), z_dir=(0, 1, 0))):
        with Locations((155.858423849, -12.7), (182.004549436, -12.7), (182.004549436, -38.1), (155.858423849, -38.1)):
            CounterSinkHole(CSK_FOR_2_FLAT_HEAD_MACHINE_SCREW_100_D / 2, CSK_FOR_2_FLAT_HEAD_MACHINE_SCREW_100_CSINK_D / 2, counter_sink_angle=CSK_FOR_2_FLAT_HEAD_MACHINE_SCREW_100_CSINK_ANGLE)


solid = part.part
